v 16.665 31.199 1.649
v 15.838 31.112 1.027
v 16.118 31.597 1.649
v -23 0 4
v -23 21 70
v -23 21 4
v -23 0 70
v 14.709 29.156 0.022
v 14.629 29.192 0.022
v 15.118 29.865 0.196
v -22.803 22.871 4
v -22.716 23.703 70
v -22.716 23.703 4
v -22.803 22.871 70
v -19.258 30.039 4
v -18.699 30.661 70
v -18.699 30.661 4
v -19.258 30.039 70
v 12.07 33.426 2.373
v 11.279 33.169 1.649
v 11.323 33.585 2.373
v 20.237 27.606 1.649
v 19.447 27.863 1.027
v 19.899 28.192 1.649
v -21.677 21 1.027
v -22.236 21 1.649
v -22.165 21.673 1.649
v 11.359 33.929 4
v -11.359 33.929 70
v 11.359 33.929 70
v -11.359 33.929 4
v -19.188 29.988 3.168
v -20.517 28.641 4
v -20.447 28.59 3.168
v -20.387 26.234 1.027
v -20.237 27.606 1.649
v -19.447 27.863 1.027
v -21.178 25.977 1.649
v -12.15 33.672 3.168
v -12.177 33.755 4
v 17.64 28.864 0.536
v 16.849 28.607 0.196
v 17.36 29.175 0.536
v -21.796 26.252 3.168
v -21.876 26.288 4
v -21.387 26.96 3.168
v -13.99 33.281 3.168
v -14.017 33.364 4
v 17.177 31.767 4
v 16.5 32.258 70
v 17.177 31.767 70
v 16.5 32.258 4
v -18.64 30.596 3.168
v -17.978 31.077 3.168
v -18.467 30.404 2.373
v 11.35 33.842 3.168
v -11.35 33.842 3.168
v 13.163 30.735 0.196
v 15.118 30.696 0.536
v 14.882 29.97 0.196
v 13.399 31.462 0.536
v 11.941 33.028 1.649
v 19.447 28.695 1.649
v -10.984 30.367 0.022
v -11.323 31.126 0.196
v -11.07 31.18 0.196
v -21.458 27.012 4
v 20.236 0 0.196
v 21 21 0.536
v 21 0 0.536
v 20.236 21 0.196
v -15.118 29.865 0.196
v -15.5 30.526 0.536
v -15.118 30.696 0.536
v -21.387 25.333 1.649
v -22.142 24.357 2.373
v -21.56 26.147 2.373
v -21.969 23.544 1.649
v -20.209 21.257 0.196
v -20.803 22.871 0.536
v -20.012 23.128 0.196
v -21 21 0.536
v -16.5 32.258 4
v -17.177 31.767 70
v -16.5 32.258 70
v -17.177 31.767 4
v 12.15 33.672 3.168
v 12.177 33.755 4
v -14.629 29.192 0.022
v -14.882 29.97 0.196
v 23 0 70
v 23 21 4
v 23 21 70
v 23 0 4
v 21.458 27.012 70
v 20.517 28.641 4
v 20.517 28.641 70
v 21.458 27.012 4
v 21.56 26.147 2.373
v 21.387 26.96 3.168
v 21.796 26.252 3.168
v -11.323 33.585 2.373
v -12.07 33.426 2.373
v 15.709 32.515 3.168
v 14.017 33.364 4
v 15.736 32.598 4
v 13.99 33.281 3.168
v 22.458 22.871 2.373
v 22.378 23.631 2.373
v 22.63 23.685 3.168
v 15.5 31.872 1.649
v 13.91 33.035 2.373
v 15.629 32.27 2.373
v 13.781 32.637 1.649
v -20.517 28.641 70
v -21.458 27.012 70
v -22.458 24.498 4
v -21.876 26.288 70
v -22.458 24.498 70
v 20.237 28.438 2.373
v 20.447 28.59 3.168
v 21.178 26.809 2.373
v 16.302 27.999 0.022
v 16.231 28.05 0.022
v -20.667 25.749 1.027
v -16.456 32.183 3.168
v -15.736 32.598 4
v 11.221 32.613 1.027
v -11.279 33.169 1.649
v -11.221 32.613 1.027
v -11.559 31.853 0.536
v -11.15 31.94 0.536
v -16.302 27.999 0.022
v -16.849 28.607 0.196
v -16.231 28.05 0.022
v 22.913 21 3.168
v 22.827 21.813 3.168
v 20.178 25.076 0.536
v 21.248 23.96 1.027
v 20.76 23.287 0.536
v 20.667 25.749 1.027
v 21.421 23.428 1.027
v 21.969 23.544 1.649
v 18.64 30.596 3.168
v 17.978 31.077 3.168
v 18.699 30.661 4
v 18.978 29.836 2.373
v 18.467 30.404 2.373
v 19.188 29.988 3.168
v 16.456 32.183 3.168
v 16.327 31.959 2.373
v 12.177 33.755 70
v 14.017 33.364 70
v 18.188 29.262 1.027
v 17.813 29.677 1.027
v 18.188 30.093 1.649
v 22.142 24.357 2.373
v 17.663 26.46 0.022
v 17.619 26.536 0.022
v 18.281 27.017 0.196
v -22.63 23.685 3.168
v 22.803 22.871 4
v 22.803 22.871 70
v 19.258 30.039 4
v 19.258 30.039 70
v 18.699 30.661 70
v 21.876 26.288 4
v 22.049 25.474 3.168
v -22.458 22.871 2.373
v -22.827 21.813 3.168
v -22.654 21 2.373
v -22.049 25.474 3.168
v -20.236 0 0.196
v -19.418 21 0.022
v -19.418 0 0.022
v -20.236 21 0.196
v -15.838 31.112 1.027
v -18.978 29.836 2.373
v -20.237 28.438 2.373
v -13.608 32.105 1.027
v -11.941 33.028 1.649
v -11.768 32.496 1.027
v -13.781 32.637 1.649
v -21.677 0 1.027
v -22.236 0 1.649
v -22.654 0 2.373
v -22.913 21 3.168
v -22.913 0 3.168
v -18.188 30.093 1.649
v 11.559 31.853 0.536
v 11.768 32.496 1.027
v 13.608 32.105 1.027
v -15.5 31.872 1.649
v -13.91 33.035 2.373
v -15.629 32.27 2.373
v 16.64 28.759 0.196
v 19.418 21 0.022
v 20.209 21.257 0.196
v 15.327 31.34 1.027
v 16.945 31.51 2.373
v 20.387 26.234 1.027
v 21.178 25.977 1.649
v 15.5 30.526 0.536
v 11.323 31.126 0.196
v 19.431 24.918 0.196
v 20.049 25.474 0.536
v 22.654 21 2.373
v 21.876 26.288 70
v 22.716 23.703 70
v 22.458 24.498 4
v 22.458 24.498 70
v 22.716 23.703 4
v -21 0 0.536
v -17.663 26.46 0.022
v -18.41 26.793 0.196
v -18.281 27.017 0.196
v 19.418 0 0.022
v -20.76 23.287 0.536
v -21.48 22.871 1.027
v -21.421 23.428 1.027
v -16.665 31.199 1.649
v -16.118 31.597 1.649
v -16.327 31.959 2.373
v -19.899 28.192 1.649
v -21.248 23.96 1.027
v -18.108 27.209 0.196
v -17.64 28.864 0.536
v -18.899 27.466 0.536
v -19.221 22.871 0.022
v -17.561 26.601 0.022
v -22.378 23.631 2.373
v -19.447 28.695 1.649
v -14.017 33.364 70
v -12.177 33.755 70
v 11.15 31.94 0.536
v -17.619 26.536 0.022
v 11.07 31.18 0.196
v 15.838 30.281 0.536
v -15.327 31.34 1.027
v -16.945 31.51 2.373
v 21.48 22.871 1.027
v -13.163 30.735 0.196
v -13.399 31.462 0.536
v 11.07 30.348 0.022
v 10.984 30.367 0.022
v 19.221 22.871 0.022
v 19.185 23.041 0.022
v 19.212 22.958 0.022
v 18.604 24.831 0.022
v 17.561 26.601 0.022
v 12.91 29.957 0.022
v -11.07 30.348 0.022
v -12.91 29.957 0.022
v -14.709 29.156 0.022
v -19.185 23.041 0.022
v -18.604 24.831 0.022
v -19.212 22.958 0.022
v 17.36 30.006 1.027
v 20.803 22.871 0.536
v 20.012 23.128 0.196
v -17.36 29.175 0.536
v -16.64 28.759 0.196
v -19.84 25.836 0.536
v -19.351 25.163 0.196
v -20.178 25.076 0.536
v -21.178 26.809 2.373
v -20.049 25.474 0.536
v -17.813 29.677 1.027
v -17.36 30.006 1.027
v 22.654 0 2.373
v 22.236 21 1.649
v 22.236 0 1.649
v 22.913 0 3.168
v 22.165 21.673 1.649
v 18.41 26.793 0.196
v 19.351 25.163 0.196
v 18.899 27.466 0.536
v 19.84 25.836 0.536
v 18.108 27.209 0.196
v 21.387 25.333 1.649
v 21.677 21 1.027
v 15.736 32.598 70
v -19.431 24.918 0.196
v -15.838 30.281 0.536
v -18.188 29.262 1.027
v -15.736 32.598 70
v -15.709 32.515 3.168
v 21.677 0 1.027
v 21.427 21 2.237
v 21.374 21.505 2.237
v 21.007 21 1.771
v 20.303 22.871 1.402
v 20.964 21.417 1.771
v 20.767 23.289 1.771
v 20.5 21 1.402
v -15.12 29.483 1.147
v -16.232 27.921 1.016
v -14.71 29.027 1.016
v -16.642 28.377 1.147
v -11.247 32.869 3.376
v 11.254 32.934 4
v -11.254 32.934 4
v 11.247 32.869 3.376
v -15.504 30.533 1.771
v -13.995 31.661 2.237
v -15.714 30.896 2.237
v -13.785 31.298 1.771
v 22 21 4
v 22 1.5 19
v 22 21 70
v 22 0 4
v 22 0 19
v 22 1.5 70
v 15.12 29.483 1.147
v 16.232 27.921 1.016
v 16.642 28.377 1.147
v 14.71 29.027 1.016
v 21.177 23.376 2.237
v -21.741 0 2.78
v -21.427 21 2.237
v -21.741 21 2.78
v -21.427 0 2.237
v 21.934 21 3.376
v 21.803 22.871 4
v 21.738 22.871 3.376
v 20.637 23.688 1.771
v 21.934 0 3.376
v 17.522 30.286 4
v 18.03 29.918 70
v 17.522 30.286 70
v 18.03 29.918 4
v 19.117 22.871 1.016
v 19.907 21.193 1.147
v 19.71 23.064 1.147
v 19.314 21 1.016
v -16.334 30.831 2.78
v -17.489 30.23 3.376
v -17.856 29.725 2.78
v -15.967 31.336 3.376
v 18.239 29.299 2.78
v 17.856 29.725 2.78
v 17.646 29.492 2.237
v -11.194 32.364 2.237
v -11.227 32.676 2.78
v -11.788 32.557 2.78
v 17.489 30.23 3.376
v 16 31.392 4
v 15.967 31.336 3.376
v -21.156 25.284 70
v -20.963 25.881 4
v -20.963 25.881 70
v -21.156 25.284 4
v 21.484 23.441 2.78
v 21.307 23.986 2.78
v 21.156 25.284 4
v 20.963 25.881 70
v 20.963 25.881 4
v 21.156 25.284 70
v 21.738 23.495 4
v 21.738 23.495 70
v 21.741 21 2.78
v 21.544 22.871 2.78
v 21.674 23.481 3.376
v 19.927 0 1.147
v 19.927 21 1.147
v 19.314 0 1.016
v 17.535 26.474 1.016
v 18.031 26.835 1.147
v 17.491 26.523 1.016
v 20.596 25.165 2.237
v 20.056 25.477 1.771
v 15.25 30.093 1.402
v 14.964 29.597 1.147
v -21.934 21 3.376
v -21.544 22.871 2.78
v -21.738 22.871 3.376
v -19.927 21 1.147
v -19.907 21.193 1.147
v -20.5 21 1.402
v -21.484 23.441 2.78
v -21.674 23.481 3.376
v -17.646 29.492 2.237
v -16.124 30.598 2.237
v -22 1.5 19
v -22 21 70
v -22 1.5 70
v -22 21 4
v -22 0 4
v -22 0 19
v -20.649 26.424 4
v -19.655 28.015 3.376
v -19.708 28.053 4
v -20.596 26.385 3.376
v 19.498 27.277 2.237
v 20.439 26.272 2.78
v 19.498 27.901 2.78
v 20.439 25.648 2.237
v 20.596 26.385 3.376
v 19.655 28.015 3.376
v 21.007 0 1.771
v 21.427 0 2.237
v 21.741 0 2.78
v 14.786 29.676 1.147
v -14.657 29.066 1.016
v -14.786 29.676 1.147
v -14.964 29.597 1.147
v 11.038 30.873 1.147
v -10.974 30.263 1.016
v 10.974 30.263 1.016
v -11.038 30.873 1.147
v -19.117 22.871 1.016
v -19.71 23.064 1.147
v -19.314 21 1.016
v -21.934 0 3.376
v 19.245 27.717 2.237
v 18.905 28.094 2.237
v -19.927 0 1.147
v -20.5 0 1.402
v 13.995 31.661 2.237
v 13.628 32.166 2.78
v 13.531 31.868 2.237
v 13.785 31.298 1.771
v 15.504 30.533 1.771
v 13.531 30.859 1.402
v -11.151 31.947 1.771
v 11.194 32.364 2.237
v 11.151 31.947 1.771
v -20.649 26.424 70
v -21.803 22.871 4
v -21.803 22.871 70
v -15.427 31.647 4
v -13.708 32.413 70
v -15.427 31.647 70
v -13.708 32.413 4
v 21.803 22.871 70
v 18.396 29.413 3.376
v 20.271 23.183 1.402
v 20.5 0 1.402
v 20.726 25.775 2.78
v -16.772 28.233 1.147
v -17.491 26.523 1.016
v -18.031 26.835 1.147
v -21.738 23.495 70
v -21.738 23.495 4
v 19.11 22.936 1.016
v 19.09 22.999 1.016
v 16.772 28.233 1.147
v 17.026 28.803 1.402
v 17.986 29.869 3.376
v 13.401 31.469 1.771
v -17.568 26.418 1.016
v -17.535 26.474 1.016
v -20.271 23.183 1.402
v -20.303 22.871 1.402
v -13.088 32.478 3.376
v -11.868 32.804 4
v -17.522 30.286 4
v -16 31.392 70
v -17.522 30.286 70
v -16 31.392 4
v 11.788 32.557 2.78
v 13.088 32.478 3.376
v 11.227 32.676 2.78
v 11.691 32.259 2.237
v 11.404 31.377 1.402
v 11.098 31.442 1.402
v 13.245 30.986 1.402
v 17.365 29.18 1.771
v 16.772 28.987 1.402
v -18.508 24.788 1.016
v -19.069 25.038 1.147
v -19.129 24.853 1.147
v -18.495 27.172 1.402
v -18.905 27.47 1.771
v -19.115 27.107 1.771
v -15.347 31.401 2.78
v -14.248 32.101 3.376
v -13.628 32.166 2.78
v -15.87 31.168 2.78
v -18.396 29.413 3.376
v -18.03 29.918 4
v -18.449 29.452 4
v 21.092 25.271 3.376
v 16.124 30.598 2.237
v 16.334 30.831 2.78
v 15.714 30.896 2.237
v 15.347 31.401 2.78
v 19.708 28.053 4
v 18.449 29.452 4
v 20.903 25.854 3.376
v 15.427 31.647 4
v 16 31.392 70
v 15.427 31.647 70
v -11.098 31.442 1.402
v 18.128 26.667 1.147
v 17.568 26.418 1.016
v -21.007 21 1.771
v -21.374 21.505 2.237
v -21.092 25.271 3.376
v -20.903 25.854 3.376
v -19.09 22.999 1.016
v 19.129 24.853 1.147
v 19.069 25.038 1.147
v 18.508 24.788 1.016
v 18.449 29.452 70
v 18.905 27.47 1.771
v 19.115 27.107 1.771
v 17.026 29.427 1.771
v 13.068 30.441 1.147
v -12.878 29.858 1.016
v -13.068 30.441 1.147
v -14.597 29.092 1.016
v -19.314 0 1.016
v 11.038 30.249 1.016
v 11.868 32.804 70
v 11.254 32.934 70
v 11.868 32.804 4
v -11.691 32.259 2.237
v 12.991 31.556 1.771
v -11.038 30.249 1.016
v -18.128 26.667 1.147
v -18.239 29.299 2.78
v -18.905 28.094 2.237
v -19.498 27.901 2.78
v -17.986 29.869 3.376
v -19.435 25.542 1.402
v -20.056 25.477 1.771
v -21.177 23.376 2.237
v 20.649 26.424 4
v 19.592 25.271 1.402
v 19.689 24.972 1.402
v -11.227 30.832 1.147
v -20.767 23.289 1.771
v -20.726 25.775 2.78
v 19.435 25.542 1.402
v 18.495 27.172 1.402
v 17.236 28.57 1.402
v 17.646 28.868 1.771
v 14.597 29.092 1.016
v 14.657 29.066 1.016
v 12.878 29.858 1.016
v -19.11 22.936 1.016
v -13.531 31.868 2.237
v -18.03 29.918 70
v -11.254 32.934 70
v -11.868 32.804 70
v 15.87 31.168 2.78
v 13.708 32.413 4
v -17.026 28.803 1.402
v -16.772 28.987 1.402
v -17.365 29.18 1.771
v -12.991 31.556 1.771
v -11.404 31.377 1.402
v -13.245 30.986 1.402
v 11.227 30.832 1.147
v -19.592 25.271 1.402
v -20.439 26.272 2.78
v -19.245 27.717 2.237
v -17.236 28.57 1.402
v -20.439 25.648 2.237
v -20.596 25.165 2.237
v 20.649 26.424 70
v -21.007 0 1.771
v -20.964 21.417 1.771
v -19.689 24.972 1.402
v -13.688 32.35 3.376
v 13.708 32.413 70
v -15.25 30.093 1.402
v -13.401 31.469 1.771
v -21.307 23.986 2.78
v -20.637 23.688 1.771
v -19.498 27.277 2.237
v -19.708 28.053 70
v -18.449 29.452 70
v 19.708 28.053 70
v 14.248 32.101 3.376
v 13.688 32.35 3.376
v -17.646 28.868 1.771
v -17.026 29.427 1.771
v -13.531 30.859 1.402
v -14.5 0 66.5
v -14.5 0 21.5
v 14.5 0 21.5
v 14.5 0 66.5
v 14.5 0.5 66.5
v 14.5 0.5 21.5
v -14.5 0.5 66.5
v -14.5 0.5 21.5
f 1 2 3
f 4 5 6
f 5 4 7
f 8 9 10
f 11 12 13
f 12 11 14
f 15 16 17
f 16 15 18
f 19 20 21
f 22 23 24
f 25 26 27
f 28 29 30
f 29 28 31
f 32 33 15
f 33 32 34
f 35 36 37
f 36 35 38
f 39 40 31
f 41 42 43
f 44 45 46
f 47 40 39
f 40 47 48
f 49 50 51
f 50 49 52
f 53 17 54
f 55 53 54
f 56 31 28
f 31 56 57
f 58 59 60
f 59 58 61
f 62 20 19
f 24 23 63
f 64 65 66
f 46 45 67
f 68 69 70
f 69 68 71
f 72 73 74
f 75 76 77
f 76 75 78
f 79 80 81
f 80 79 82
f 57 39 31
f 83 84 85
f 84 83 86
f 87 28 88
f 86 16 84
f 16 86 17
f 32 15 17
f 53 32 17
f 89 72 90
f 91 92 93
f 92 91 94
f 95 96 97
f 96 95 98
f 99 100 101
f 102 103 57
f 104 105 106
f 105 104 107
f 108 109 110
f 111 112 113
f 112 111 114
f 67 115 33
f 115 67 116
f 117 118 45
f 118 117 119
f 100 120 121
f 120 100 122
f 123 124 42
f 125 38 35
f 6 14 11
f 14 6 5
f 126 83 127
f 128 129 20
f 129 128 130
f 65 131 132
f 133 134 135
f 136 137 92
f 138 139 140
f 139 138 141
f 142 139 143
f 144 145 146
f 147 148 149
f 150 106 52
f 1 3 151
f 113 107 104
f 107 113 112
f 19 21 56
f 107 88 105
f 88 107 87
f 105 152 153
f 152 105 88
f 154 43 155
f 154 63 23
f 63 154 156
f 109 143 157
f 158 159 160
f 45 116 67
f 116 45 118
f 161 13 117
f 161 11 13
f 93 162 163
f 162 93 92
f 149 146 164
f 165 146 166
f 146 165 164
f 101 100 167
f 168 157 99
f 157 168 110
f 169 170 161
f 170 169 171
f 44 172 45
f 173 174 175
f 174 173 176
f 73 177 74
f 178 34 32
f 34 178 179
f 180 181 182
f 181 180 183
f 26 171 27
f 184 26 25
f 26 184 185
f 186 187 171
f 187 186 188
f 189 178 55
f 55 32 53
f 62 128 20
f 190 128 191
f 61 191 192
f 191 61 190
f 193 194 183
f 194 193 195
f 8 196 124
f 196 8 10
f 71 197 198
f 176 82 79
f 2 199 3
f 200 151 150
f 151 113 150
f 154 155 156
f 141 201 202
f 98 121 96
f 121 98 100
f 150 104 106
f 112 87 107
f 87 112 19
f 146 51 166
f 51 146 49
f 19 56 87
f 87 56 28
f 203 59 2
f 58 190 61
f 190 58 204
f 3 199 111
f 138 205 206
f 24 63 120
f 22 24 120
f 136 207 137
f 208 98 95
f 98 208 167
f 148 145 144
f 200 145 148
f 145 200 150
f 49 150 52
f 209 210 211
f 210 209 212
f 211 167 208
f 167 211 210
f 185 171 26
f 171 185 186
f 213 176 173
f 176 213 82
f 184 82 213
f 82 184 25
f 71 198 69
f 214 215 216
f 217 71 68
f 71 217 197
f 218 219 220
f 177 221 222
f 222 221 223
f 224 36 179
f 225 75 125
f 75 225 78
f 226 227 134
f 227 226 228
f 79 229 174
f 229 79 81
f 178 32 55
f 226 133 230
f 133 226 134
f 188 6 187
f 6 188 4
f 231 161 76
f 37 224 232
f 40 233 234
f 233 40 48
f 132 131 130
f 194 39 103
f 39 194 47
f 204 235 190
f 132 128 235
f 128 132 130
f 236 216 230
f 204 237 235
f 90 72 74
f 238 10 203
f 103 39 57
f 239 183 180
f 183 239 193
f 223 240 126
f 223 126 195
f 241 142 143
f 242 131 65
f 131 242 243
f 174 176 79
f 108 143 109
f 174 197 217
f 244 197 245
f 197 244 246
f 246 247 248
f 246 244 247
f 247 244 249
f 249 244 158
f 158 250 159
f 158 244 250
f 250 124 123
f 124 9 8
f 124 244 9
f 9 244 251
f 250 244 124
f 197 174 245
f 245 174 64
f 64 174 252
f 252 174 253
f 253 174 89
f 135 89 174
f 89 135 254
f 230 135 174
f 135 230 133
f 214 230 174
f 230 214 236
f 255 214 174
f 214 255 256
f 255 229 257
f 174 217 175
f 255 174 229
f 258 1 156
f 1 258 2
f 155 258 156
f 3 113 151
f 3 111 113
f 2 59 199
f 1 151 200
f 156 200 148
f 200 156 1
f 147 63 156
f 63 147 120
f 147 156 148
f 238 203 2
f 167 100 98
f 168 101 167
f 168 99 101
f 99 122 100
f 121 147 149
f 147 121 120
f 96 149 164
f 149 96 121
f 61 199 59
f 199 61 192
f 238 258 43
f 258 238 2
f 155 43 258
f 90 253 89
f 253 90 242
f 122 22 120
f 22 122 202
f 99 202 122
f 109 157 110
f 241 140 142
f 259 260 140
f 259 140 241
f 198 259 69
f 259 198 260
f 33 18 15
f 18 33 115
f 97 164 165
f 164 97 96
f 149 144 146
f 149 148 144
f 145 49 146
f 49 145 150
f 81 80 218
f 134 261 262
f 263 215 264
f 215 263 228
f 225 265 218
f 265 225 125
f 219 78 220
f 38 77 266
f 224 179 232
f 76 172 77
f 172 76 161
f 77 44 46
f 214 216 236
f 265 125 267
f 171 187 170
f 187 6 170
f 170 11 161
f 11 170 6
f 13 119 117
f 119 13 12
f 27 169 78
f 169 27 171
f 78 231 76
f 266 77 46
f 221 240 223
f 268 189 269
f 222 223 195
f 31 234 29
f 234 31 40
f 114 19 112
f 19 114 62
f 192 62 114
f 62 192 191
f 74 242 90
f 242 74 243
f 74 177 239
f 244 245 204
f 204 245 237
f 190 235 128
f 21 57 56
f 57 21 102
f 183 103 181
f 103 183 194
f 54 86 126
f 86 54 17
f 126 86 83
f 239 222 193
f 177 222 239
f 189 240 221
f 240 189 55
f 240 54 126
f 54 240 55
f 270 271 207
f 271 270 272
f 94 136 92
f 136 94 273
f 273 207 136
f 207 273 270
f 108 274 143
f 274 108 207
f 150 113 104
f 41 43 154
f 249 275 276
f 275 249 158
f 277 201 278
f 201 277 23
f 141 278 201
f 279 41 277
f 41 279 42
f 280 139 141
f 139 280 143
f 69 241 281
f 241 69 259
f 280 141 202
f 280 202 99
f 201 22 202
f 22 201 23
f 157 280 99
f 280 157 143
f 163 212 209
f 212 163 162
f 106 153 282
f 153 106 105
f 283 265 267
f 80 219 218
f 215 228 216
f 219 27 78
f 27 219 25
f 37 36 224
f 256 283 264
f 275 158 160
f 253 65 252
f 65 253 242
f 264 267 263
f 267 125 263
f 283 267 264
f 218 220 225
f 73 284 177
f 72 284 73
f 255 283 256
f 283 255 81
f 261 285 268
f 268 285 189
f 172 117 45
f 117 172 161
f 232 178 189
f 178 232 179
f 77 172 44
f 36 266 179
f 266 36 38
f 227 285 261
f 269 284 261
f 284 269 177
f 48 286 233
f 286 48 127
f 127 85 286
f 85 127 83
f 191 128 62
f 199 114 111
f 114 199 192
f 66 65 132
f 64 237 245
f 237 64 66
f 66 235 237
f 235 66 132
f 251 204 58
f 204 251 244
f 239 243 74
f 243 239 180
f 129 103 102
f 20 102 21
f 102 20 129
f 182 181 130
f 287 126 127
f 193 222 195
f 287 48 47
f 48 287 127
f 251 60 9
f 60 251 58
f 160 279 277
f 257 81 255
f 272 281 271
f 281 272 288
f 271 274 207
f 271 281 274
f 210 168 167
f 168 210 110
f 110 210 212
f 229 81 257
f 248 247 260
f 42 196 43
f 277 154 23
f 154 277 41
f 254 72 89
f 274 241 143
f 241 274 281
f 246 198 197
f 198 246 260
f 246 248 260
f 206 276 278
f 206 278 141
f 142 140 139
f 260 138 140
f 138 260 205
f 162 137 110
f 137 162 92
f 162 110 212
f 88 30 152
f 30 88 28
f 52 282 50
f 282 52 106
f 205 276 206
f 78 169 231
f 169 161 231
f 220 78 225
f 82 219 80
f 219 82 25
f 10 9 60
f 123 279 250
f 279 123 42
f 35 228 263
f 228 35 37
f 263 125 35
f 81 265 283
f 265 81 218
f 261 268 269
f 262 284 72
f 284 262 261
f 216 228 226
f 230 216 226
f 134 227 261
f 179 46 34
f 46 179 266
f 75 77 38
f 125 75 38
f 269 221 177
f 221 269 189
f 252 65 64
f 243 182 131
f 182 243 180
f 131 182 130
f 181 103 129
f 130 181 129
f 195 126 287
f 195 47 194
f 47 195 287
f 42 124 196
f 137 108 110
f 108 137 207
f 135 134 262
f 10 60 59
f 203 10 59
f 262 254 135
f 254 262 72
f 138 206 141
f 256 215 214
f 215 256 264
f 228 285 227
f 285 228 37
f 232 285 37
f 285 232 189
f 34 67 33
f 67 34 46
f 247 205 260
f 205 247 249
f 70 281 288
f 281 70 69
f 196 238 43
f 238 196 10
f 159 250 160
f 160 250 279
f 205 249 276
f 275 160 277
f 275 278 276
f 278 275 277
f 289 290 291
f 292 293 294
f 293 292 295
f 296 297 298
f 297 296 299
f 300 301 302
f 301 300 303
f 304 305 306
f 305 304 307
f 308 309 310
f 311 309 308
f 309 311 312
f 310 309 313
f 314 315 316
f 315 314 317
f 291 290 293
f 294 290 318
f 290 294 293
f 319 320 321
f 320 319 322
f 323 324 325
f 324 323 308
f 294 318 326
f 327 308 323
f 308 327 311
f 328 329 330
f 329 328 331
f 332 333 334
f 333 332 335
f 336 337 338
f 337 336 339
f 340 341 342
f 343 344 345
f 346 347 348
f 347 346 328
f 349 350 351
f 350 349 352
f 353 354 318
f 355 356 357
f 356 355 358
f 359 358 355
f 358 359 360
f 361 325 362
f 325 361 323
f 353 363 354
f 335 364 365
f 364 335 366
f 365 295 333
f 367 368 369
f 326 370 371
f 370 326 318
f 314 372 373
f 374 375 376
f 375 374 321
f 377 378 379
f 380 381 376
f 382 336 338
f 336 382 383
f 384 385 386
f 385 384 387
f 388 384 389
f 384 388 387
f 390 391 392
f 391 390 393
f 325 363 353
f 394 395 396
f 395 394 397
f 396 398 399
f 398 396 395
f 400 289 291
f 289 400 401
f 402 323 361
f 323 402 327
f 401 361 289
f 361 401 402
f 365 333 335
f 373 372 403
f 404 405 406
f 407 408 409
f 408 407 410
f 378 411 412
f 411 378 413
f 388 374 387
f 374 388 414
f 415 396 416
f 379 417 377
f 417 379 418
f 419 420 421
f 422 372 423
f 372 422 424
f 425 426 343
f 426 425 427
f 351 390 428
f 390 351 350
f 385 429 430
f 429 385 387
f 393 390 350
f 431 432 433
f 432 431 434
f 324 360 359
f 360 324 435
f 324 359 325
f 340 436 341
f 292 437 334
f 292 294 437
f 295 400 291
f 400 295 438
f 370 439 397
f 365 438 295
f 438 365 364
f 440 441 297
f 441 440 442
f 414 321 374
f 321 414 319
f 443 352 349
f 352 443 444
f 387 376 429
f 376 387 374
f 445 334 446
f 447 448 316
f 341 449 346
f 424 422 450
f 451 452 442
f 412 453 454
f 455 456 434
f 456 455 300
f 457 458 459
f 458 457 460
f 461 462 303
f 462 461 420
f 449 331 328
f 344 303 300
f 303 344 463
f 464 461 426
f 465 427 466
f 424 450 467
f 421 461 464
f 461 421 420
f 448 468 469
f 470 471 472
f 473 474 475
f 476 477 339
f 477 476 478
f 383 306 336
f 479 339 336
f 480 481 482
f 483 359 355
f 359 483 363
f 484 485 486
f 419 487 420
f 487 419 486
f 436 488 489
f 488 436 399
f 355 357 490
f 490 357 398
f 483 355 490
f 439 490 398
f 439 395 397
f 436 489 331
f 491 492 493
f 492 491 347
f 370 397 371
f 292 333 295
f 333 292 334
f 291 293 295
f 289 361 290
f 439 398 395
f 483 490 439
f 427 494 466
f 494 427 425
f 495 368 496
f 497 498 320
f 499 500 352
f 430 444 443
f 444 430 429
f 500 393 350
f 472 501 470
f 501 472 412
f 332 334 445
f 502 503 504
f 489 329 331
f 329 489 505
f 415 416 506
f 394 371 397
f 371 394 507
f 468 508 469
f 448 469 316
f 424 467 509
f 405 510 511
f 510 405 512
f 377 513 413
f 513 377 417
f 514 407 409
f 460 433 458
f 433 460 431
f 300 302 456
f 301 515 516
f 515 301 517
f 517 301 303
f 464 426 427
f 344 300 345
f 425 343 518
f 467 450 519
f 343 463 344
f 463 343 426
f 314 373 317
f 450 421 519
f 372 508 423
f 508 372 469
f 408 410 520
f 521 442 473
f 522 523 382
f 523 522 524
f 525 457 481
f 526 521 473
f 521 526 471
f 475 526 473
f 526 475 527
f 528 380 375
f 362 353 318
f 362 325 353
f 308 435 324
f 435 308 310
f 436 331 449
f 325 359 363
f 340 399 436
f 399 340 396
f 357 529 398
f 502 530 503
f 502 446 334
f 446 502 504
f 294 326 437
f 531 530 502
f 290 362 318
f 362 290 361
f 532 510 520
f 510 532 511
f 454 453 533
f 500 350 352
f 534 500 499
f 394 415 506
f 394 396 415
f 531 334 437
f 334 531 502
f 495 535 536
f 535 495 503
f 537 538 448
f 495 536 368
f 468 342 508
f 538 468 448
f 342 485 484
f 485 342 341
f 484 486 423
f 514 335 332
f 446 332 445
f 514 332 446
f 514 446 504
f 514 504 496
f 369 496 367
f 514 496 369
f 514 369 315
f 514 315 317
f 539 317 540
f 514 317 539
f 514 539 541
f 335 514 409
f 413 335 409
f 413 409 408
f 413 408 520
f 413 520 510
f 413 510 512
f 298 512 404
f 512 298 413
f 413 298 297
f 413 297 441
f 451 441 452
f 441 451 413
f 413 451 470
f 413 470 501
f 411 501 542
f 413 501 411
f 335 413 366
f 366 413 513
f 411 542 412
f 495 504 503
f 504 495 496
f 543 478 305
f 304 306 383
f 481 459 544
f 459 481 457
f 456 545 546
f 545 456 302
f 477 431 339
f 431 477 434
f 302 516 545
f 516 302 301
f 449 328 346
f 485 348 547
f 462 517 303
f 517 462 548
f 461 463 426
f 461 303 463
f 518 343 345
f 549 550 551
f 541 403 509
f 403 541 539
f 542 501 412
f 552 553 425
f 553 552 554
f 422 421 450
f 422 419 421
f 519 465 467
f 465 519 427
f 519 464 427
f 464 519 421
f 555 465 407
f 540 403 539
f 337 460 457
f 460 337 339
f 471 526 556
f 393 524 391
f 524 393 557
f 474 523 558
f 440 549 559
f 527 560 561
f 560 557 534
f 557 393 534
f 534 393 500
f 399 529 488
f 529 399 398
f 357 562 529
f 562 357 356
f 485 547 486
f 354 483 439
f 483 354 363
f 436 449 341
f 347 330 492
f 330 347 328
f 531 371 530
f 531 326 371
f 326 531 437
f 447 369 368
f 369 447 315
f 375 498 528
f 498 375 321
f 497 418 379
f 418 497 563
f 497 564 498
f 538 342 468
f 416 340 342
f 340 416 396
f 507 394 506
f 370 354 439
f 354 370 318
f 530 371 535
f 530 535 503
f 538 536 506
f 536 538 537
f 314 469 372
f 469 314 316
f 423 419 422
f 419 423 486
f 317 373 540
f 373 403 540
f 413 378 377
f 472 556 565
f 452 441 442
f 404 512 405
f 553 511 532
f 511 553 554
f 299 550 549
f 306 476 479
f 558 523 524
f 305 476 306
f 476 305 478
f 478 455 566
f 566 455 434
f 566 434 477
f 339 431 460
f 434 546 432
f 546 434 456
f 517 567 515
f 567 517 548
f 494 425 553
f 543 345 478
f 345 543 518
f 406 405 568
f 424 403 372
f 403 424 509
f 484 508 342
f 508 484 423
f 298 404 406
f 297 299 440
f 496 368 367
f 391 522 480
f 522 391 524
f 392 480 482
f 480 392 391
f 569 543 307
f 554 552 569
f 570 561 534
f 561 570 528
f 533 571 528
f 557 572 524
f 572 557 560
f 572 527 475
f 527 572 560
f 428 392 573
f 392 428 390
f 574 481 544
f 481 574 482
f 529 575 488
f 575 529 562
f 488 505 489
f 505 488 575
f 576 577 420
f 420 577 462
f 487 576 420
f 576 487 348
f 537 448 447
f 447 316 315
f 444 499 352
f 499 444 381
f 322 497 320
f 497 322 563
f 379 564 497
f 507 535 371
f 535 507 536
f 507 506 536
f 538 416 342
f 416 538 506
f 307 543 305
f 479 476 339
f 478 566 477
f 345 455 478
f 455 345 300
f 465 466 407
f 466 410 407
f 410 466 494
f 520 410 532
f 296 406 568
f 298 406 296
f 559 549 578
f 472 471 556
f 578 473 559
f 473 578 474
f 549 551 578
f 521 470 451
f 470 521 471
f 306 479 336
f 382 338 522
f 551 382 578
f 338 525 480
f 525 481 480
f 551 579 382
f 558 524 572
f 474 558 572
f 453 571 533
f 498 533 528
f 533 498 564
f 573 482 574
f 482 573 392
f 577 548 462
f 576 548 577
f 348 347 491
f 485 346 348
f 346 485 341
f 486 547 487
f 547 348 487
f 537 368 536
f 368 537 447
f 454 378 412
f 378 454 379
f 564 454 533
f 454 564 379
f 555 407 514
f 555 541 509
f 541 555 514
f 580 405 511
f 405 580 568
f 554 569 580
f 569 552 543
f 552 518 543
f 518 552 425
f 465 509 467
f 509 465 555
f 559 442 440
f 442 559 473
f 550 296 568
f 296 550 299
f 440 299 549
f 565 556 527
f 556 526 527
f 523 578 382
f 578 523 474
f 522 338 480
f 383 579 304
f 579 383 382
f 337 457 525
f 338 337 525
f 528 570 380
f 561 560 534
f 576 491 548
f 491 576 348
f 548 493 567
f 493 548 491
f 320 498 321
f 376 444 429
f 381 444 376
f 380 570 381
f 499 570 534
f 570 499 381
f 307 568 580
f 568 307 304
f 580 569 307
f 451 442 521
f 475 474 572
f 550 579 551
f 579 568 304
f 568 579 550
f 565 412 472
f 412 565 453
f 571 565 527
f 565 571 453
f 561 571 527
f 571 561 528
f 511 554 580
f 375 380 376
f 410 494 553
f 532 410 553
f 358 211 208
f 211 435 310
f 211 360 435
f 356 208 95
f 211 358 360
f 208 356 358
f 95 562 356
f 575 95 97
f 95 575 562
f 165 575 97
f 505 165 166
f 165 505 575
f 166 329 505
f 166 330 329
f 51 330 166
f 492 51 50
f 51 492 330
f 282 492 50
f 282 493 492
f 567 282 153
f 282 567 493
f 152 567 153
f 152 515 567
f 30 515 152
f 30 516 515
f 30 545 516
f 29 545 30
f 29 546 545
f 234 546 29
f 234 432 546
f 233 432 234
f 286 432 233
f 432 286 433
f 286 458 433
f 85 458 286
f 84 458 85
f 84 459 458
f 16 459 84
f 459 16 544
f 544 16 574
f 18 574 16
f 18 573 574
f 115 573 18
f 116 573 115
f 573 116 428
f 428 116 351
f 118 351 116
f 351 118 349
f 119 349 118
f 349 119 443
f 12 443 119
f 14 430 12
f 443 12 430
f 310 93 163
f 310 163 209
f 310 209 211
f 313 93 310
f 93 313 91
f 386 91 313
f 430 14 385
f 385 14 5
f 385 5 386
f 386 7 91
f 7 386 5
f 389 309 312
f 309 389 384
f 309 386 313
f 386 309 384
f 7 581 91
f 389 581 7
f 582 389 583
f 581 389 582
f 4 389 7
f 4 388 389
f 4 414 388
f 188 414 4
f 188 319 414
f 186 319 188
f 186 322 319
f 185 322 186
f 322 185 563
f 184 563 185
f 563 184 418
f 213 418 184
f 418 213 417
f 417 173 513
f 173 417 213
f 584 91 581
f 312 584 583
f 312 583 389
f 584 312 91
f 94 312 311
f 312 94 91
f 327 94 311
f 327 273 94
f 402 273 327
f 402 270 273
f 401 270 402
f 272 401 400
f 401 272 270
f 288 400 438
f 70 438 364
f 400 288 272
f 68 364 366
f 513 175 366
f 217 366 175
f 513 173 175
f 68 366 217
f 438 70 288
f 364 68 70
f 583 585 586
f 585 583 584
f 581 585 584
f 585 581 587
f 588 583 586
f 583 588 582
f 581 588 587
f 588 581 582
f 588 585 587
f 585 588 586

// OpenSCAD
// A holder for Clorox(r) Bleach Pen(r)
// This can be mounted with a heavy duty tape or a magnet.

intersection () {

  union () {

    // front shell
    difference() {

      // outside shape
      minkowski() {
        $fn = 30;
        hull() {
          translate([10, 21, 4]) cylinder(66, 9, 9);
          translate([-10, 21, 4]) cylinder(66, 9, 9);
          translate([-19, 0, 4]) cube([38, 5, 66]);
        }
        sphere(4);
      }

      // inside shape
      minkowski() {
        $fn = 30;
        hull() {
          translate([10, 21, 4]) cylinder(66, 9, 9);
          translate([-10, 21, 4]) cylinder(66, 9, 9);
          translate([-19, 0, 4]) cube([38, 5, 66]);
        }
        sphere(3);
      }
    }

    // spine
    difference() {
      translate([-22, 0, 19]) cube([44, 1.5, 70-19]);
      // this indentation is for the magnet stripe
      translate([-14.5, -0.5, 21.5]) cube([29, 1, 45]);
    }
  }

  // a big boundary cube
  translate([-30, 0, -5]) cube([60, 40, 70+5]);
}
